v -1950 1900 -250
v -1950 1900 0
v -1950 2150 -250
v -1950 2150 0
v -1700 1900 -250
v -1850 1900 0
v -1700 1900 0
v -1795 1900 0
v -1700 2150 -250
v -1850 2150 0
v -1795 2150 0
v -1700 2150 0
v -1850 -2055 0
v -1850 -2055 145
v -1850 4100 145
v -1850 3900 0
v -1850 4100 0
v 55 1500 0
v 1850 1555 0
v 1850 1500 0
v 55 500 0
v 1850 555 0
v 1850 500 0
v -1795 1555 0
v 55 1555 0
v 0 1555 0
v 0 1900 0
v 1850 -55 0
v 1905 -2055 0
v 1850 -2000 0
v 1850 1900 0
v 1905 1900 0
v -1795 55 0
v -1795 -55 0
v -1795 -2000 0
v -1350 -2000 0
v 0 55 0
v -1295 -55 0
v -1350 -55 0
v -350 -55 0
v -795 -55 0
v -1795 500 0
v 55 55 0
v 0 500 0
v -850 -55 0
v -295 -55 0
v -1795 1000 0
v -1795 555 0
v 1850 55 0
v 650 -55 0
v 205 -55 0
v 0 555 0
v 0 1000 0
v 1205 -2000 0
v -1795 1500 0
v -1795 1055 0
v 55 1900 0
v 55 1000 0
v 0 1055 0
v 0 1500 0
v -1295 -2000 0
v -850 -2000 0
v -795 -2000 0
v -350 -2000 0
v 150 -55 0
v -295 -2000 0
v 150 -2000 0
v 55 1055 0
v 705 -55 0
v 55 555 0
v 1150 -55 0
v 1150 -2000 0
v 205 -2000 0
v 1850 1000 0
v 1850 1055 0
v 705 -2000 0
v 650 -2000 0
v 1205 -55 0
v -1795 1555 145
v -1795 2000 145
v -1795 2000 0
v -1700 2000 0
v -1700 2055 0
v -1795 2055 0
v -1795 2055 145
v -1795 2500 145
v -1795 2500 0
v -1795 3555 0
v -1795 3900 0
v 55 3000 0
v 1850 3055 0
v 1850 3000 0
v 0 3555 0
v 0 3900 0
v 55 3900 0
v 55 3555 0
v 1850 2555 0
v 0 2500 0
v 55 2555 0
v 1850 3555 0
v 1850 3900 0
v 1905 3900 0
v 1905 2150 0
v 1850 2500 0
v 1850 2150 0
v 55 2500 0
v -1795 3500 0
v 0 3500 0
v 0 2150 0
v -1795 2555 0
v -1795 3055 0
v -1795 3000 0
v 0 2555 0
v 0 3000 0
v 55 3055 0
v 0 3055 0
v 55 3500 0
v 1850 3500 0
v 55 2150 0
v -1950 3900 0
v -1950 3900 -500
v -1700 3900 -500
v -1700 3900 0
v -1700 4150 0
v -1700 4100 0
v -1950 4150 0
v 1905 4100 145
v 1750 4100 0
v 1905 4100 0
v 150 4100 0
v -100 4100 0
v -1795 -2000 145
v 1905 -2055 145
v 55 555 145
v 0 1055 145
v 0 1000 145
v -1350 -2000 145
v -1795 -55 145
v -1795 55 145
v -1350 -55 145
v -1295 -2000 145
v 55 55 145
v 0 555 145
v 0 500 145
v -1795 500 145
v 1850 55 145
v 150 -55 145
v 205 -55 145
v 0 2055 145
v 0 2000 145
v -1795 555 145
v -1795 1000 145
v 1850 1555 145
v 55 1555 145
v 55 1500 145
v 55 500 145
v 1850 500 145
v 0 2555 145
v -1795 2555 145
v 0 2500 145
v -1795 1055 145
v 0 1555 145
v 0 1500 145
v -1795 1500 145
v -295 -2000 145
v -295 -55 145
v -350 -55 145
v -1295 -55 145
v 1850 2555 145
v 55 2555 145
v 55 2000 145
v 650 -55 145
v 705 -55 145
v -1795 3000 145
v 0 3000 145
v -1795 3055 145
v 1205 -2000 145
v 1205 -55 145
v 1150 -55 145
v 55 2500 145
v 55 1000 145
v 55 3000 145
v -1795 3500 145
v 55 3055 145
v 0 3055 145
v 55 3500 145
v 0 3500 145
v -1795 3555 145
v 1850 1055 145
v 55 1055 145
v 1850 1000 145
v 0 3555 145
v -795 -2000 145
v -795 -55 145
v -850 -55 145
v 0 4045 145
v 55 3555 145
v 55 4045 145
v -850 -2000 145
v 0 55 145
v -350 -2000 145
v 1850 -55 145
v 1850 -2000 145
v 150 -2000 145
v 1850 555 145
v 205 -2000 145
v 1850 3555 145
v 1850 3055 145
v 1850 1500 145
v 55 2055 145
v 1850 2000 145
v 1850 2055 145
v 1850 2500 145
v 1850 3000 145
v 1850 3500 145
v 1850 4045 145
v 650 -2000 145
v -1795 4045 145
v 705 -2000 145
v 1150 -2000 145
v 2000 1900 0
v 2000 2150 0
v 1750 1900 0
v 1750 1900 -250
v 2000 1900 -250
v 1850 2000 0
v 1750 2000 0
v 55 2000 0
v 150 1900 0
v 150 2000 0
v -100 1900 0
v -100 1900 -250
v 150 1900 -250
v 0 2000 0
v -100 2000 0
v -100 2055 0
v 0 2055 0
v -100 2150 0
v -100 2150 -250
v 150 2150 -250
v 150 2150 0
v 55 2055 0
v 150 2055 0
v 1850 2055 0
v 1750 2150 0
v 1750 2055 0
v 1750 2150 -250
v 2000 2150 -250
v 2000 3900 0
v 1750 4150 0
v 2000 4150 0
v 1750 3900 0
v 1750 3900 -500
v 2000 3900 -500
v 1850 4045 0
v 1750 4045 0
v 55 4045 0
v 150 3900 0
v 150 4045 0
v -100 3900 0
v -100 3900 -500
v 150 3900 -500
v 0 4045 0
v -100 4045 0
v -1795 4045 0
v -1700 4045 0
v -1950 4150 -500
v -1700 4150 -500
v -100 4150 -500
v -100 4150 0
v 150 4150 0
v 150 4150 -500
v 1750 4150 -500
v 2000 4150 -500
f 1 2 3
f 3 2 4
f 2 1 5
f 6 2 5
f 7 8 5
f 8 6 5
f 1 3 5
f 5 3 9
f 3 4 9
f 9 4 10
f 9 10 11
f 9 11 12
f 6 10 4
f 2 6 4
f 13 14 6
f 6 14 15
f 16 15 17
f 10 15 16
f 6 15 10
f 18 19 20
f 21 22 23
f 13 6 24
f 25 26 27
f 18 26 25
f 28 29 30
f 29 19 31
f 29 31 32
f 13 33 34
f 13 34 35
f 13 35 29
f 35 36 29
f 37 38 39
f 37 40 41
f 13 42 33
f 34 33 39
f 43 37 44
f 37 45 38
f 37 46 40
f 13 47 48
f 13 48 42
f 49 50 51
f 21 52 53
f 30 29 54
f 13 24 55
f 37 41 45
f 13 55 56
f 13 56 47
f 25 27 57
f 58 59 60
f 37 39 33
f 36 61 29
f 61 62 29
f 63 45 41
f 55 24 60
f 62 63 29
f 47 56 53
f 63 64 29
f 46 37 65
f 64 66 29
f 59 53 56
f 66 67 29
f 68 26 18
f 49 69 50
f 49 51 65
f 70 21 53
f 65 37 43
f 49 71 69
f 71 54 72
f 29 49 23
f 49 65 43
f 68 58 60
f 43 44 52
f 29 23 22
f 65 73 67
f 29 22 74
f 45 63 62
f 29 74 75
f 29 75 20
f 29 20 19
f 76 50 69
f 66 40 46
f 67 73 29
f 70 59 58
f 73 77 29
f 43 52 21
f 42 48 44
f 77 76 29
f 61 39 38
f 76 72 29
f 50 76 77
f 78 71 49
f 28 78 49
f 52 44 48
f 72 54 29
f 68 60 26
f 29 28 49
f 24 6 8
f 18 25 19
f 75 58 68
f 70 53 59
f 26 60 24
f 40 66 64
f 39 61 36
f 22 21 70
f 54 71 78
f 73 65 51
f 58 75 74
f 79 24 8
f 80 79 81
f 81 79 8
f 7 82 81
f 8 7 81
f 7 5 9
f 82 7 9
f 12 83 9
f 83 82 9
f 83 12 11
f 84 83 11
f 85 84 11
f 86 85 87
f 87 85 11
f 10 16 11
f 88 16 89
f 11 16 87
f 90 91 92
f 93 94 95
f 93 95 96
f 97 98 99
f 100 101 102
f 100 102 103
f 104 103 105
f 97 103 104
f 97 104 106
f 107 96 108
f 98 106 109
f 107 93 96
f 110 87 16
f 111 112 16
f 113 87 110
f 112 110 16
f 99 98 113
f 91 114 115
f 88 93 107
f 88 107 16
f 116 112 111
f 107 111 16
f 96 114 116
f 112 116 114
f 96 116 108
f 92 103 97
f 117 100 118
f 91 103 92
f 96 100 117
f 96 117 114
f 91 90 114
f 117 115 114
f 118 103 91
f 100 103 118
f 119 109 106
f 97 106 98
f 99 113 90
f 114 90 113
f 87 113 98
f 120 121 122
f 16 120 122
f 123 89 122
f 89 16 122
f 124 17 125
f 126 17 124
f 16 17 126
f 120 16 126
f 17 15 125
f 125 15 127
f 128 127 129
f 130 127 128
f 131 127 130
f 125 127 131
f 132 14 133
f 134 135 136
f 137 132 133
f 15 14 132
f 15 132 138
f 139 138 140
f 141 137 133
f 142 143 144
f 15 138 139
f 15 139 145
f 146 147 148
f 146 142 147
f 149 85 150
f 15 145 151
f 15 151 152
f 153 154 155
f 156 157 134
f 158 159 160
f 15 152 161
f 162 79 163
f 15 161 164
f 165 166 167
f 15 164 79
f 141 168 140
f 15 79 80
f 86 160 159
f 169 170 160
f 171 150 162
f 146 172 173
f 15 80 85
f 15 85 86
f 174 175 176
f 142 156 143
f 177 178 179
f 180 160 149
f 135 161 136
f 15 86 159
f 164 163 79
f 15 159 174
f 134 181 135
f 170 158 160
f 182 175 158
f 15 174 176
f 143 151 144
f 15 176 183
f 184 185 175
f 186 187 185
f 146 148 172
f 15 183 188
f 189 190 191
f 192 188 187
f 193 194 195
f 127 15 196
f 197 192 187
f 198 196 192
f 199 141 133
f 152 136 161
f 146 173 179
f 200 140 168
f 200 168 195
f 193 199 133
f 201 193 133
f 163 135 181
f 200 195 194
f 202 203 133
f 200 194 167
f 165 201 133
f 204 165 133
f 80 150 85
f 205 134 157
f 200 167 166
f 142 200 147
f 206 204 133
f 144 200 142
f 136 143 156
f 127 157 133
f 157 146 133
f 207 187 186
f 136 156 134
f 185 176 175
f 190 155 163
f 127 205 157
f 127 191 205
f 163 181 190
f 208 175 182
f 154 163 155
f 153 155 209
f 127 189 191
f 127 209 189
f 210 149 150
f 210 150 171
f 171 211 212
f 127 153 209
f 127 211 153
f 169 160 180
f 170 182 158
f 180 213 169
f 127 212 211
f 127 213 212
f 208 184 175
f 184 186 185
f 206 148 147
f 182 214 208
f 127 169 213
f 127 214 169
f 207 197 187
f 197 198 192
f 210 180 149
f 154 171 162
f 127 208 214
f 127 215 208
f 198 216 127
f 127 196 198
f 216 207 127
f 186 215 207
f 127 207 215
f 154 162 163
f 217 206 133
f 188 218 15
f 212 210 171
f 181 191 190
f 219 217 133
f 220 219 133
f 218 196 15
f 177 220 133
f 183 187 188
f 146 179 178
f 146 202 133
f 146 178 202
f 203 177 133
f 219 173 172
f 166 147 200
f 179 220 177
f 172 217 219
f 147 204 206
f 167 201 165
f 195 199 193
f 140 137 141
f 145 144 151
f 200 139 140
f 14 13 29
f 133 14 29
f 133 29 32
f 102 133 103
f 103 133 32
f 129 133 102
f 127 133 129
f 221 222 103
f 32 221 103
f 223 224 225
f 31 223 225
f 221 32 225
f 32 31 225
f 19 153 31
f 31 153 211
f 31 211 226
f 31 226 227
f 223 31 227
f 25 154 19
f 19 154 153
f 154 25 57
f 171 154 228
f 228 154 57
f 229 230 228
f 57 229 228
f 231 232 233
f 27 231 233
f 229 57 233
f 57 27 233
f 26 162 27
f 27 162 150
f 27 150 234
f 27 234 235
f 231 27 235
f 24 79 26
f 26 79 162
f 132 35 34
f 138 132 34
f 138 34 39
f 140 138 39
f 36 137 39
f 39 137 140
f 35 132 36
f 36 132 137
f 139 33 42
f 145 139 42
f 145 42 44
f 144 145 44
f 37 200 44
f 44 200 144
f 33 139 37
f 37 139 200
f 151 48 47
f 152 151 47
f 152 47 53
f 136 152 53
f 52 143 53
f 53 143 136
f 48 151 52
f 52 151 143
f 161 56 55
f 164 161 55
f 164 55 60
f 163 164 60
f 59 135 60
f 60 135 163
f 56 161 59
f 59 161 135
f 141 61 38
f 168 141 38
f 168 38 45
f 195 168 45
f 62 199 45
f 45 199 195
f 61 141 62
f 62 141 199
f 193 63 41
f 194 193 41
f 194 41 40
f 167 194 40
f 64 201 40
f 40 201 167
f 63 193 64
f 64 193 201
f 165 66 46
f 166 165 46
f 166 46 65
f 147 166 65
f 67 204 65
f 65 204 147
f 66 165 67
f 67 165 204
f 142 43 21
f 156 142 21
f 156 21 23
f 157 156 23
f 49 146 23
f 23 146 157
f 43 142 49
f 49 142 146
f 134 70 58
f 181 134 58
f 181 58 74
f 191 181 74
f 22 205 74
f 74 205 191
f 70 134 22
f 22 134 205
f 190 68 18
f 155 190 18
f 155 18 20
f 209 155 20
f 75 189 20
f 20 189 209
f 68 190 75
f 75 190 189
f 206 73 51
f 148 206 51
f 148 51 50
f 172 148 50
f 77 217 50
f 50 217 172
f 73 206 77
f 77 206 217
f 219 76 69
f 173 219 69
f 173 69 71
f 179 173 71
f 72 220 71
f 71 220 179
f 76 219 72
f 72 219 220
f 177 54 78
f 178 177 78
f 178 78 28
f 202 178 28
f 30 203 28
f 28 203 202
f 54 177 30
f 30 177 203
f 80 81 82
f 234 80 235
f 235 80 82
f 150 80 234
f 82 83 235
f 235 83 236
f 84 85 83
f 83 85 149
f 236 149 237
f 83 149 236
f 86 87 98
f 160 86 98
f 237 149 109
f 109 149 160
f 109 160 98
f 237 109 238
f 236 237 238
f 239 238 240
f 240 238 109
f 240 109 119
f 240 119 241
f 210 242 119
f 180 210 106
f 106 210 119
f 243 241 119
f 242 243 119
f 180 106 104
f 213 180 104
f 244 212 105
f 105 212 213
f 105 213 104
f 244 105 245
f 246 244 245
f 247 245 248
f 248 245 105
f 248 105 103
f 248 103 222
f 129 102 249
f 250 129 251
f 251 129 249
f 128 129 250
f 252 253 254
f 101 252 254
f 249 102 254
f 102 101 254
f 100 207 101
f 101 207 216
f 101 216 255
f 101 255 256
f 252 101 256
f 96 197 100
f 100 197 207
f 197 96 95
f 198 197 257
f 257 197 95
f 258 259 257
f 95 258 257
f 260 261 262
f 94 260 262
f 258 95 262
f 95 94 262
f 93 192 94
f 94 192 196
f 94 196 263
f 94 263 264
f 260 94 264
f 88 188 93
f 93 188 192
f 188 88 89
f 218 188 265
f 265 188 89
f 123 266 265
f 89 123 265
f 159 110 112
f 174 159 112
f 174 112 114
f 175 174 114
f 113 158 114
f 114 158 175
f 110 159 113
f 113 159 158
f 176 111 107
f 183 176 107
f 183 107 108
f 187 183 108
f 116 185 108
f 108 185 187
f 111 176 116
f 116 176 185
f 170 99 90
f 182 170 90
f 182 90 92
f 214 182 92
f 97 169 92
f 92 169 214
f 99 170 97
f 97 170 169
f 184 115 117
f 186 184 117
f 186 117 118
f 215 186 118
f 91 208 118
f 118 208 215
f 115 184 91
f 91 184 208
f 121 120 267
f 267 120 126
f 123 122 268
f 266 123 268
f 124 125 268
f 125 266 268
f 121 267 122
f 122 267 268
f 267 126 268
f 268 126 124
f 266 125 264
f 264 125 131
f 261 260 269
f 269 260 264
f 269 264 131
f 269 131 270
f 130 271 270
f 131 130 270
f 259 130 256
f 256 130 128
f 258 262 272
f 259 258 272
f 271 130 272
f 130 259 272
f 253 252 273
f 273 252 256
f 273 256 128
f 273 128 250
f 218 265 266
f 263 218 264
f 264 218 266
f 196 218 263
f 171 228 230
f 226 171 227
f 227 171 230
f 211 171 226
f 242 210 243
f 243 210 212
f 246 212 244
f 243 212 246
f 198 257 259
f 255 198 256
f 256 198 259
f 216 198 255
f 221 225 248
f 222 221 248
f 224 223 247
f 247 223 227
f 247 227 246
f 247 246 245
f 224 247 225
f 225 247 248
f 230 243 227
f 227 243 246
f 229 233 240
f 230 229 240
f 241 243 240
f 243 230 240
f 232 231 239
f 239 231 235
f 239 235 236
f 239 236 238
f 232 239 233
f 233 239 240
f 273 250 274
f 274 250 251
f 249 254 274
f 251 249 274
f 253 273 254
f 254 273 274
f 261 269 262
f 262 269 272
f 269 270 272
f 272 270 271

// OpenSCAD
module it_kehikko_pitkat() {
  translate([-1850,0,0]){
    cube([55,4100,145]);
  }
  translate([0,0,0]){
    cube([55,4100,145]);
  }
  translate([1850,0,0]){
    cube([55,4100,145]);
 }
}

module it_kehikko_lyhyet() {
  for (y = [0,500,1000,1500,2000,2500,3000,3500,4045]) {
    translate([-1795,y,0]){
      cube([1795,55,145]);
    }
    translate([55,y,0]){
      cube([1795,55,145]);
    }
  }
}

module it_kehikko_harkot() {
  // keskiharkot
  translate([-1950,1900,-250]) {
    cube([250,250,250]);
  }
  translate([-100,1900,-250]) {
    cube([250,250,250]);
  }
  translate([1750,1900,-250]) {
    cube([250,250,250]);
  }

  // paatyharkot, yla
  translate([-1950,3900,-250]) {
    cube([250,250,250]);
  }
  translate([-100,3900,-250]) {
    cube([250,250,250]);
  }
  translate([1750,3900,-250]) {
    cube([250,250,250]);
  }

  // paatyharkot, ala
  translate([-1950,3900,-500]) {
    cube([250,250,250]);
  }
  translate([-100,3900,-500]) {
    cube([250,250,250]);
  }
  translate([1750,3900,-500]) {
    cube([250,250,250]);
  }
}

module pt_kehikko_pitkat() {
  translate([-1850,-55,0]){
    cube([3755,55,145]);
  }
  translate([-1850,-2055,0]){
    cube([3755,55,145]);
  }
}

module pt_kehikko_lyhyet() {
  for (x = [-1850, -1350, -850, -350, 150, 650, 1150, 1850]) {
    translate([x,-2000,0]){
      cube([55,1945,145]);
    }
  }
}

it_kehikko_pitkat();
color ("red") {
  it_kehikko_lyhyet();
}
it_kehikko_harkot();
pt_kehikko_pitkat();
color ("red") {
  pt_kehikko_lyhyet();
}
